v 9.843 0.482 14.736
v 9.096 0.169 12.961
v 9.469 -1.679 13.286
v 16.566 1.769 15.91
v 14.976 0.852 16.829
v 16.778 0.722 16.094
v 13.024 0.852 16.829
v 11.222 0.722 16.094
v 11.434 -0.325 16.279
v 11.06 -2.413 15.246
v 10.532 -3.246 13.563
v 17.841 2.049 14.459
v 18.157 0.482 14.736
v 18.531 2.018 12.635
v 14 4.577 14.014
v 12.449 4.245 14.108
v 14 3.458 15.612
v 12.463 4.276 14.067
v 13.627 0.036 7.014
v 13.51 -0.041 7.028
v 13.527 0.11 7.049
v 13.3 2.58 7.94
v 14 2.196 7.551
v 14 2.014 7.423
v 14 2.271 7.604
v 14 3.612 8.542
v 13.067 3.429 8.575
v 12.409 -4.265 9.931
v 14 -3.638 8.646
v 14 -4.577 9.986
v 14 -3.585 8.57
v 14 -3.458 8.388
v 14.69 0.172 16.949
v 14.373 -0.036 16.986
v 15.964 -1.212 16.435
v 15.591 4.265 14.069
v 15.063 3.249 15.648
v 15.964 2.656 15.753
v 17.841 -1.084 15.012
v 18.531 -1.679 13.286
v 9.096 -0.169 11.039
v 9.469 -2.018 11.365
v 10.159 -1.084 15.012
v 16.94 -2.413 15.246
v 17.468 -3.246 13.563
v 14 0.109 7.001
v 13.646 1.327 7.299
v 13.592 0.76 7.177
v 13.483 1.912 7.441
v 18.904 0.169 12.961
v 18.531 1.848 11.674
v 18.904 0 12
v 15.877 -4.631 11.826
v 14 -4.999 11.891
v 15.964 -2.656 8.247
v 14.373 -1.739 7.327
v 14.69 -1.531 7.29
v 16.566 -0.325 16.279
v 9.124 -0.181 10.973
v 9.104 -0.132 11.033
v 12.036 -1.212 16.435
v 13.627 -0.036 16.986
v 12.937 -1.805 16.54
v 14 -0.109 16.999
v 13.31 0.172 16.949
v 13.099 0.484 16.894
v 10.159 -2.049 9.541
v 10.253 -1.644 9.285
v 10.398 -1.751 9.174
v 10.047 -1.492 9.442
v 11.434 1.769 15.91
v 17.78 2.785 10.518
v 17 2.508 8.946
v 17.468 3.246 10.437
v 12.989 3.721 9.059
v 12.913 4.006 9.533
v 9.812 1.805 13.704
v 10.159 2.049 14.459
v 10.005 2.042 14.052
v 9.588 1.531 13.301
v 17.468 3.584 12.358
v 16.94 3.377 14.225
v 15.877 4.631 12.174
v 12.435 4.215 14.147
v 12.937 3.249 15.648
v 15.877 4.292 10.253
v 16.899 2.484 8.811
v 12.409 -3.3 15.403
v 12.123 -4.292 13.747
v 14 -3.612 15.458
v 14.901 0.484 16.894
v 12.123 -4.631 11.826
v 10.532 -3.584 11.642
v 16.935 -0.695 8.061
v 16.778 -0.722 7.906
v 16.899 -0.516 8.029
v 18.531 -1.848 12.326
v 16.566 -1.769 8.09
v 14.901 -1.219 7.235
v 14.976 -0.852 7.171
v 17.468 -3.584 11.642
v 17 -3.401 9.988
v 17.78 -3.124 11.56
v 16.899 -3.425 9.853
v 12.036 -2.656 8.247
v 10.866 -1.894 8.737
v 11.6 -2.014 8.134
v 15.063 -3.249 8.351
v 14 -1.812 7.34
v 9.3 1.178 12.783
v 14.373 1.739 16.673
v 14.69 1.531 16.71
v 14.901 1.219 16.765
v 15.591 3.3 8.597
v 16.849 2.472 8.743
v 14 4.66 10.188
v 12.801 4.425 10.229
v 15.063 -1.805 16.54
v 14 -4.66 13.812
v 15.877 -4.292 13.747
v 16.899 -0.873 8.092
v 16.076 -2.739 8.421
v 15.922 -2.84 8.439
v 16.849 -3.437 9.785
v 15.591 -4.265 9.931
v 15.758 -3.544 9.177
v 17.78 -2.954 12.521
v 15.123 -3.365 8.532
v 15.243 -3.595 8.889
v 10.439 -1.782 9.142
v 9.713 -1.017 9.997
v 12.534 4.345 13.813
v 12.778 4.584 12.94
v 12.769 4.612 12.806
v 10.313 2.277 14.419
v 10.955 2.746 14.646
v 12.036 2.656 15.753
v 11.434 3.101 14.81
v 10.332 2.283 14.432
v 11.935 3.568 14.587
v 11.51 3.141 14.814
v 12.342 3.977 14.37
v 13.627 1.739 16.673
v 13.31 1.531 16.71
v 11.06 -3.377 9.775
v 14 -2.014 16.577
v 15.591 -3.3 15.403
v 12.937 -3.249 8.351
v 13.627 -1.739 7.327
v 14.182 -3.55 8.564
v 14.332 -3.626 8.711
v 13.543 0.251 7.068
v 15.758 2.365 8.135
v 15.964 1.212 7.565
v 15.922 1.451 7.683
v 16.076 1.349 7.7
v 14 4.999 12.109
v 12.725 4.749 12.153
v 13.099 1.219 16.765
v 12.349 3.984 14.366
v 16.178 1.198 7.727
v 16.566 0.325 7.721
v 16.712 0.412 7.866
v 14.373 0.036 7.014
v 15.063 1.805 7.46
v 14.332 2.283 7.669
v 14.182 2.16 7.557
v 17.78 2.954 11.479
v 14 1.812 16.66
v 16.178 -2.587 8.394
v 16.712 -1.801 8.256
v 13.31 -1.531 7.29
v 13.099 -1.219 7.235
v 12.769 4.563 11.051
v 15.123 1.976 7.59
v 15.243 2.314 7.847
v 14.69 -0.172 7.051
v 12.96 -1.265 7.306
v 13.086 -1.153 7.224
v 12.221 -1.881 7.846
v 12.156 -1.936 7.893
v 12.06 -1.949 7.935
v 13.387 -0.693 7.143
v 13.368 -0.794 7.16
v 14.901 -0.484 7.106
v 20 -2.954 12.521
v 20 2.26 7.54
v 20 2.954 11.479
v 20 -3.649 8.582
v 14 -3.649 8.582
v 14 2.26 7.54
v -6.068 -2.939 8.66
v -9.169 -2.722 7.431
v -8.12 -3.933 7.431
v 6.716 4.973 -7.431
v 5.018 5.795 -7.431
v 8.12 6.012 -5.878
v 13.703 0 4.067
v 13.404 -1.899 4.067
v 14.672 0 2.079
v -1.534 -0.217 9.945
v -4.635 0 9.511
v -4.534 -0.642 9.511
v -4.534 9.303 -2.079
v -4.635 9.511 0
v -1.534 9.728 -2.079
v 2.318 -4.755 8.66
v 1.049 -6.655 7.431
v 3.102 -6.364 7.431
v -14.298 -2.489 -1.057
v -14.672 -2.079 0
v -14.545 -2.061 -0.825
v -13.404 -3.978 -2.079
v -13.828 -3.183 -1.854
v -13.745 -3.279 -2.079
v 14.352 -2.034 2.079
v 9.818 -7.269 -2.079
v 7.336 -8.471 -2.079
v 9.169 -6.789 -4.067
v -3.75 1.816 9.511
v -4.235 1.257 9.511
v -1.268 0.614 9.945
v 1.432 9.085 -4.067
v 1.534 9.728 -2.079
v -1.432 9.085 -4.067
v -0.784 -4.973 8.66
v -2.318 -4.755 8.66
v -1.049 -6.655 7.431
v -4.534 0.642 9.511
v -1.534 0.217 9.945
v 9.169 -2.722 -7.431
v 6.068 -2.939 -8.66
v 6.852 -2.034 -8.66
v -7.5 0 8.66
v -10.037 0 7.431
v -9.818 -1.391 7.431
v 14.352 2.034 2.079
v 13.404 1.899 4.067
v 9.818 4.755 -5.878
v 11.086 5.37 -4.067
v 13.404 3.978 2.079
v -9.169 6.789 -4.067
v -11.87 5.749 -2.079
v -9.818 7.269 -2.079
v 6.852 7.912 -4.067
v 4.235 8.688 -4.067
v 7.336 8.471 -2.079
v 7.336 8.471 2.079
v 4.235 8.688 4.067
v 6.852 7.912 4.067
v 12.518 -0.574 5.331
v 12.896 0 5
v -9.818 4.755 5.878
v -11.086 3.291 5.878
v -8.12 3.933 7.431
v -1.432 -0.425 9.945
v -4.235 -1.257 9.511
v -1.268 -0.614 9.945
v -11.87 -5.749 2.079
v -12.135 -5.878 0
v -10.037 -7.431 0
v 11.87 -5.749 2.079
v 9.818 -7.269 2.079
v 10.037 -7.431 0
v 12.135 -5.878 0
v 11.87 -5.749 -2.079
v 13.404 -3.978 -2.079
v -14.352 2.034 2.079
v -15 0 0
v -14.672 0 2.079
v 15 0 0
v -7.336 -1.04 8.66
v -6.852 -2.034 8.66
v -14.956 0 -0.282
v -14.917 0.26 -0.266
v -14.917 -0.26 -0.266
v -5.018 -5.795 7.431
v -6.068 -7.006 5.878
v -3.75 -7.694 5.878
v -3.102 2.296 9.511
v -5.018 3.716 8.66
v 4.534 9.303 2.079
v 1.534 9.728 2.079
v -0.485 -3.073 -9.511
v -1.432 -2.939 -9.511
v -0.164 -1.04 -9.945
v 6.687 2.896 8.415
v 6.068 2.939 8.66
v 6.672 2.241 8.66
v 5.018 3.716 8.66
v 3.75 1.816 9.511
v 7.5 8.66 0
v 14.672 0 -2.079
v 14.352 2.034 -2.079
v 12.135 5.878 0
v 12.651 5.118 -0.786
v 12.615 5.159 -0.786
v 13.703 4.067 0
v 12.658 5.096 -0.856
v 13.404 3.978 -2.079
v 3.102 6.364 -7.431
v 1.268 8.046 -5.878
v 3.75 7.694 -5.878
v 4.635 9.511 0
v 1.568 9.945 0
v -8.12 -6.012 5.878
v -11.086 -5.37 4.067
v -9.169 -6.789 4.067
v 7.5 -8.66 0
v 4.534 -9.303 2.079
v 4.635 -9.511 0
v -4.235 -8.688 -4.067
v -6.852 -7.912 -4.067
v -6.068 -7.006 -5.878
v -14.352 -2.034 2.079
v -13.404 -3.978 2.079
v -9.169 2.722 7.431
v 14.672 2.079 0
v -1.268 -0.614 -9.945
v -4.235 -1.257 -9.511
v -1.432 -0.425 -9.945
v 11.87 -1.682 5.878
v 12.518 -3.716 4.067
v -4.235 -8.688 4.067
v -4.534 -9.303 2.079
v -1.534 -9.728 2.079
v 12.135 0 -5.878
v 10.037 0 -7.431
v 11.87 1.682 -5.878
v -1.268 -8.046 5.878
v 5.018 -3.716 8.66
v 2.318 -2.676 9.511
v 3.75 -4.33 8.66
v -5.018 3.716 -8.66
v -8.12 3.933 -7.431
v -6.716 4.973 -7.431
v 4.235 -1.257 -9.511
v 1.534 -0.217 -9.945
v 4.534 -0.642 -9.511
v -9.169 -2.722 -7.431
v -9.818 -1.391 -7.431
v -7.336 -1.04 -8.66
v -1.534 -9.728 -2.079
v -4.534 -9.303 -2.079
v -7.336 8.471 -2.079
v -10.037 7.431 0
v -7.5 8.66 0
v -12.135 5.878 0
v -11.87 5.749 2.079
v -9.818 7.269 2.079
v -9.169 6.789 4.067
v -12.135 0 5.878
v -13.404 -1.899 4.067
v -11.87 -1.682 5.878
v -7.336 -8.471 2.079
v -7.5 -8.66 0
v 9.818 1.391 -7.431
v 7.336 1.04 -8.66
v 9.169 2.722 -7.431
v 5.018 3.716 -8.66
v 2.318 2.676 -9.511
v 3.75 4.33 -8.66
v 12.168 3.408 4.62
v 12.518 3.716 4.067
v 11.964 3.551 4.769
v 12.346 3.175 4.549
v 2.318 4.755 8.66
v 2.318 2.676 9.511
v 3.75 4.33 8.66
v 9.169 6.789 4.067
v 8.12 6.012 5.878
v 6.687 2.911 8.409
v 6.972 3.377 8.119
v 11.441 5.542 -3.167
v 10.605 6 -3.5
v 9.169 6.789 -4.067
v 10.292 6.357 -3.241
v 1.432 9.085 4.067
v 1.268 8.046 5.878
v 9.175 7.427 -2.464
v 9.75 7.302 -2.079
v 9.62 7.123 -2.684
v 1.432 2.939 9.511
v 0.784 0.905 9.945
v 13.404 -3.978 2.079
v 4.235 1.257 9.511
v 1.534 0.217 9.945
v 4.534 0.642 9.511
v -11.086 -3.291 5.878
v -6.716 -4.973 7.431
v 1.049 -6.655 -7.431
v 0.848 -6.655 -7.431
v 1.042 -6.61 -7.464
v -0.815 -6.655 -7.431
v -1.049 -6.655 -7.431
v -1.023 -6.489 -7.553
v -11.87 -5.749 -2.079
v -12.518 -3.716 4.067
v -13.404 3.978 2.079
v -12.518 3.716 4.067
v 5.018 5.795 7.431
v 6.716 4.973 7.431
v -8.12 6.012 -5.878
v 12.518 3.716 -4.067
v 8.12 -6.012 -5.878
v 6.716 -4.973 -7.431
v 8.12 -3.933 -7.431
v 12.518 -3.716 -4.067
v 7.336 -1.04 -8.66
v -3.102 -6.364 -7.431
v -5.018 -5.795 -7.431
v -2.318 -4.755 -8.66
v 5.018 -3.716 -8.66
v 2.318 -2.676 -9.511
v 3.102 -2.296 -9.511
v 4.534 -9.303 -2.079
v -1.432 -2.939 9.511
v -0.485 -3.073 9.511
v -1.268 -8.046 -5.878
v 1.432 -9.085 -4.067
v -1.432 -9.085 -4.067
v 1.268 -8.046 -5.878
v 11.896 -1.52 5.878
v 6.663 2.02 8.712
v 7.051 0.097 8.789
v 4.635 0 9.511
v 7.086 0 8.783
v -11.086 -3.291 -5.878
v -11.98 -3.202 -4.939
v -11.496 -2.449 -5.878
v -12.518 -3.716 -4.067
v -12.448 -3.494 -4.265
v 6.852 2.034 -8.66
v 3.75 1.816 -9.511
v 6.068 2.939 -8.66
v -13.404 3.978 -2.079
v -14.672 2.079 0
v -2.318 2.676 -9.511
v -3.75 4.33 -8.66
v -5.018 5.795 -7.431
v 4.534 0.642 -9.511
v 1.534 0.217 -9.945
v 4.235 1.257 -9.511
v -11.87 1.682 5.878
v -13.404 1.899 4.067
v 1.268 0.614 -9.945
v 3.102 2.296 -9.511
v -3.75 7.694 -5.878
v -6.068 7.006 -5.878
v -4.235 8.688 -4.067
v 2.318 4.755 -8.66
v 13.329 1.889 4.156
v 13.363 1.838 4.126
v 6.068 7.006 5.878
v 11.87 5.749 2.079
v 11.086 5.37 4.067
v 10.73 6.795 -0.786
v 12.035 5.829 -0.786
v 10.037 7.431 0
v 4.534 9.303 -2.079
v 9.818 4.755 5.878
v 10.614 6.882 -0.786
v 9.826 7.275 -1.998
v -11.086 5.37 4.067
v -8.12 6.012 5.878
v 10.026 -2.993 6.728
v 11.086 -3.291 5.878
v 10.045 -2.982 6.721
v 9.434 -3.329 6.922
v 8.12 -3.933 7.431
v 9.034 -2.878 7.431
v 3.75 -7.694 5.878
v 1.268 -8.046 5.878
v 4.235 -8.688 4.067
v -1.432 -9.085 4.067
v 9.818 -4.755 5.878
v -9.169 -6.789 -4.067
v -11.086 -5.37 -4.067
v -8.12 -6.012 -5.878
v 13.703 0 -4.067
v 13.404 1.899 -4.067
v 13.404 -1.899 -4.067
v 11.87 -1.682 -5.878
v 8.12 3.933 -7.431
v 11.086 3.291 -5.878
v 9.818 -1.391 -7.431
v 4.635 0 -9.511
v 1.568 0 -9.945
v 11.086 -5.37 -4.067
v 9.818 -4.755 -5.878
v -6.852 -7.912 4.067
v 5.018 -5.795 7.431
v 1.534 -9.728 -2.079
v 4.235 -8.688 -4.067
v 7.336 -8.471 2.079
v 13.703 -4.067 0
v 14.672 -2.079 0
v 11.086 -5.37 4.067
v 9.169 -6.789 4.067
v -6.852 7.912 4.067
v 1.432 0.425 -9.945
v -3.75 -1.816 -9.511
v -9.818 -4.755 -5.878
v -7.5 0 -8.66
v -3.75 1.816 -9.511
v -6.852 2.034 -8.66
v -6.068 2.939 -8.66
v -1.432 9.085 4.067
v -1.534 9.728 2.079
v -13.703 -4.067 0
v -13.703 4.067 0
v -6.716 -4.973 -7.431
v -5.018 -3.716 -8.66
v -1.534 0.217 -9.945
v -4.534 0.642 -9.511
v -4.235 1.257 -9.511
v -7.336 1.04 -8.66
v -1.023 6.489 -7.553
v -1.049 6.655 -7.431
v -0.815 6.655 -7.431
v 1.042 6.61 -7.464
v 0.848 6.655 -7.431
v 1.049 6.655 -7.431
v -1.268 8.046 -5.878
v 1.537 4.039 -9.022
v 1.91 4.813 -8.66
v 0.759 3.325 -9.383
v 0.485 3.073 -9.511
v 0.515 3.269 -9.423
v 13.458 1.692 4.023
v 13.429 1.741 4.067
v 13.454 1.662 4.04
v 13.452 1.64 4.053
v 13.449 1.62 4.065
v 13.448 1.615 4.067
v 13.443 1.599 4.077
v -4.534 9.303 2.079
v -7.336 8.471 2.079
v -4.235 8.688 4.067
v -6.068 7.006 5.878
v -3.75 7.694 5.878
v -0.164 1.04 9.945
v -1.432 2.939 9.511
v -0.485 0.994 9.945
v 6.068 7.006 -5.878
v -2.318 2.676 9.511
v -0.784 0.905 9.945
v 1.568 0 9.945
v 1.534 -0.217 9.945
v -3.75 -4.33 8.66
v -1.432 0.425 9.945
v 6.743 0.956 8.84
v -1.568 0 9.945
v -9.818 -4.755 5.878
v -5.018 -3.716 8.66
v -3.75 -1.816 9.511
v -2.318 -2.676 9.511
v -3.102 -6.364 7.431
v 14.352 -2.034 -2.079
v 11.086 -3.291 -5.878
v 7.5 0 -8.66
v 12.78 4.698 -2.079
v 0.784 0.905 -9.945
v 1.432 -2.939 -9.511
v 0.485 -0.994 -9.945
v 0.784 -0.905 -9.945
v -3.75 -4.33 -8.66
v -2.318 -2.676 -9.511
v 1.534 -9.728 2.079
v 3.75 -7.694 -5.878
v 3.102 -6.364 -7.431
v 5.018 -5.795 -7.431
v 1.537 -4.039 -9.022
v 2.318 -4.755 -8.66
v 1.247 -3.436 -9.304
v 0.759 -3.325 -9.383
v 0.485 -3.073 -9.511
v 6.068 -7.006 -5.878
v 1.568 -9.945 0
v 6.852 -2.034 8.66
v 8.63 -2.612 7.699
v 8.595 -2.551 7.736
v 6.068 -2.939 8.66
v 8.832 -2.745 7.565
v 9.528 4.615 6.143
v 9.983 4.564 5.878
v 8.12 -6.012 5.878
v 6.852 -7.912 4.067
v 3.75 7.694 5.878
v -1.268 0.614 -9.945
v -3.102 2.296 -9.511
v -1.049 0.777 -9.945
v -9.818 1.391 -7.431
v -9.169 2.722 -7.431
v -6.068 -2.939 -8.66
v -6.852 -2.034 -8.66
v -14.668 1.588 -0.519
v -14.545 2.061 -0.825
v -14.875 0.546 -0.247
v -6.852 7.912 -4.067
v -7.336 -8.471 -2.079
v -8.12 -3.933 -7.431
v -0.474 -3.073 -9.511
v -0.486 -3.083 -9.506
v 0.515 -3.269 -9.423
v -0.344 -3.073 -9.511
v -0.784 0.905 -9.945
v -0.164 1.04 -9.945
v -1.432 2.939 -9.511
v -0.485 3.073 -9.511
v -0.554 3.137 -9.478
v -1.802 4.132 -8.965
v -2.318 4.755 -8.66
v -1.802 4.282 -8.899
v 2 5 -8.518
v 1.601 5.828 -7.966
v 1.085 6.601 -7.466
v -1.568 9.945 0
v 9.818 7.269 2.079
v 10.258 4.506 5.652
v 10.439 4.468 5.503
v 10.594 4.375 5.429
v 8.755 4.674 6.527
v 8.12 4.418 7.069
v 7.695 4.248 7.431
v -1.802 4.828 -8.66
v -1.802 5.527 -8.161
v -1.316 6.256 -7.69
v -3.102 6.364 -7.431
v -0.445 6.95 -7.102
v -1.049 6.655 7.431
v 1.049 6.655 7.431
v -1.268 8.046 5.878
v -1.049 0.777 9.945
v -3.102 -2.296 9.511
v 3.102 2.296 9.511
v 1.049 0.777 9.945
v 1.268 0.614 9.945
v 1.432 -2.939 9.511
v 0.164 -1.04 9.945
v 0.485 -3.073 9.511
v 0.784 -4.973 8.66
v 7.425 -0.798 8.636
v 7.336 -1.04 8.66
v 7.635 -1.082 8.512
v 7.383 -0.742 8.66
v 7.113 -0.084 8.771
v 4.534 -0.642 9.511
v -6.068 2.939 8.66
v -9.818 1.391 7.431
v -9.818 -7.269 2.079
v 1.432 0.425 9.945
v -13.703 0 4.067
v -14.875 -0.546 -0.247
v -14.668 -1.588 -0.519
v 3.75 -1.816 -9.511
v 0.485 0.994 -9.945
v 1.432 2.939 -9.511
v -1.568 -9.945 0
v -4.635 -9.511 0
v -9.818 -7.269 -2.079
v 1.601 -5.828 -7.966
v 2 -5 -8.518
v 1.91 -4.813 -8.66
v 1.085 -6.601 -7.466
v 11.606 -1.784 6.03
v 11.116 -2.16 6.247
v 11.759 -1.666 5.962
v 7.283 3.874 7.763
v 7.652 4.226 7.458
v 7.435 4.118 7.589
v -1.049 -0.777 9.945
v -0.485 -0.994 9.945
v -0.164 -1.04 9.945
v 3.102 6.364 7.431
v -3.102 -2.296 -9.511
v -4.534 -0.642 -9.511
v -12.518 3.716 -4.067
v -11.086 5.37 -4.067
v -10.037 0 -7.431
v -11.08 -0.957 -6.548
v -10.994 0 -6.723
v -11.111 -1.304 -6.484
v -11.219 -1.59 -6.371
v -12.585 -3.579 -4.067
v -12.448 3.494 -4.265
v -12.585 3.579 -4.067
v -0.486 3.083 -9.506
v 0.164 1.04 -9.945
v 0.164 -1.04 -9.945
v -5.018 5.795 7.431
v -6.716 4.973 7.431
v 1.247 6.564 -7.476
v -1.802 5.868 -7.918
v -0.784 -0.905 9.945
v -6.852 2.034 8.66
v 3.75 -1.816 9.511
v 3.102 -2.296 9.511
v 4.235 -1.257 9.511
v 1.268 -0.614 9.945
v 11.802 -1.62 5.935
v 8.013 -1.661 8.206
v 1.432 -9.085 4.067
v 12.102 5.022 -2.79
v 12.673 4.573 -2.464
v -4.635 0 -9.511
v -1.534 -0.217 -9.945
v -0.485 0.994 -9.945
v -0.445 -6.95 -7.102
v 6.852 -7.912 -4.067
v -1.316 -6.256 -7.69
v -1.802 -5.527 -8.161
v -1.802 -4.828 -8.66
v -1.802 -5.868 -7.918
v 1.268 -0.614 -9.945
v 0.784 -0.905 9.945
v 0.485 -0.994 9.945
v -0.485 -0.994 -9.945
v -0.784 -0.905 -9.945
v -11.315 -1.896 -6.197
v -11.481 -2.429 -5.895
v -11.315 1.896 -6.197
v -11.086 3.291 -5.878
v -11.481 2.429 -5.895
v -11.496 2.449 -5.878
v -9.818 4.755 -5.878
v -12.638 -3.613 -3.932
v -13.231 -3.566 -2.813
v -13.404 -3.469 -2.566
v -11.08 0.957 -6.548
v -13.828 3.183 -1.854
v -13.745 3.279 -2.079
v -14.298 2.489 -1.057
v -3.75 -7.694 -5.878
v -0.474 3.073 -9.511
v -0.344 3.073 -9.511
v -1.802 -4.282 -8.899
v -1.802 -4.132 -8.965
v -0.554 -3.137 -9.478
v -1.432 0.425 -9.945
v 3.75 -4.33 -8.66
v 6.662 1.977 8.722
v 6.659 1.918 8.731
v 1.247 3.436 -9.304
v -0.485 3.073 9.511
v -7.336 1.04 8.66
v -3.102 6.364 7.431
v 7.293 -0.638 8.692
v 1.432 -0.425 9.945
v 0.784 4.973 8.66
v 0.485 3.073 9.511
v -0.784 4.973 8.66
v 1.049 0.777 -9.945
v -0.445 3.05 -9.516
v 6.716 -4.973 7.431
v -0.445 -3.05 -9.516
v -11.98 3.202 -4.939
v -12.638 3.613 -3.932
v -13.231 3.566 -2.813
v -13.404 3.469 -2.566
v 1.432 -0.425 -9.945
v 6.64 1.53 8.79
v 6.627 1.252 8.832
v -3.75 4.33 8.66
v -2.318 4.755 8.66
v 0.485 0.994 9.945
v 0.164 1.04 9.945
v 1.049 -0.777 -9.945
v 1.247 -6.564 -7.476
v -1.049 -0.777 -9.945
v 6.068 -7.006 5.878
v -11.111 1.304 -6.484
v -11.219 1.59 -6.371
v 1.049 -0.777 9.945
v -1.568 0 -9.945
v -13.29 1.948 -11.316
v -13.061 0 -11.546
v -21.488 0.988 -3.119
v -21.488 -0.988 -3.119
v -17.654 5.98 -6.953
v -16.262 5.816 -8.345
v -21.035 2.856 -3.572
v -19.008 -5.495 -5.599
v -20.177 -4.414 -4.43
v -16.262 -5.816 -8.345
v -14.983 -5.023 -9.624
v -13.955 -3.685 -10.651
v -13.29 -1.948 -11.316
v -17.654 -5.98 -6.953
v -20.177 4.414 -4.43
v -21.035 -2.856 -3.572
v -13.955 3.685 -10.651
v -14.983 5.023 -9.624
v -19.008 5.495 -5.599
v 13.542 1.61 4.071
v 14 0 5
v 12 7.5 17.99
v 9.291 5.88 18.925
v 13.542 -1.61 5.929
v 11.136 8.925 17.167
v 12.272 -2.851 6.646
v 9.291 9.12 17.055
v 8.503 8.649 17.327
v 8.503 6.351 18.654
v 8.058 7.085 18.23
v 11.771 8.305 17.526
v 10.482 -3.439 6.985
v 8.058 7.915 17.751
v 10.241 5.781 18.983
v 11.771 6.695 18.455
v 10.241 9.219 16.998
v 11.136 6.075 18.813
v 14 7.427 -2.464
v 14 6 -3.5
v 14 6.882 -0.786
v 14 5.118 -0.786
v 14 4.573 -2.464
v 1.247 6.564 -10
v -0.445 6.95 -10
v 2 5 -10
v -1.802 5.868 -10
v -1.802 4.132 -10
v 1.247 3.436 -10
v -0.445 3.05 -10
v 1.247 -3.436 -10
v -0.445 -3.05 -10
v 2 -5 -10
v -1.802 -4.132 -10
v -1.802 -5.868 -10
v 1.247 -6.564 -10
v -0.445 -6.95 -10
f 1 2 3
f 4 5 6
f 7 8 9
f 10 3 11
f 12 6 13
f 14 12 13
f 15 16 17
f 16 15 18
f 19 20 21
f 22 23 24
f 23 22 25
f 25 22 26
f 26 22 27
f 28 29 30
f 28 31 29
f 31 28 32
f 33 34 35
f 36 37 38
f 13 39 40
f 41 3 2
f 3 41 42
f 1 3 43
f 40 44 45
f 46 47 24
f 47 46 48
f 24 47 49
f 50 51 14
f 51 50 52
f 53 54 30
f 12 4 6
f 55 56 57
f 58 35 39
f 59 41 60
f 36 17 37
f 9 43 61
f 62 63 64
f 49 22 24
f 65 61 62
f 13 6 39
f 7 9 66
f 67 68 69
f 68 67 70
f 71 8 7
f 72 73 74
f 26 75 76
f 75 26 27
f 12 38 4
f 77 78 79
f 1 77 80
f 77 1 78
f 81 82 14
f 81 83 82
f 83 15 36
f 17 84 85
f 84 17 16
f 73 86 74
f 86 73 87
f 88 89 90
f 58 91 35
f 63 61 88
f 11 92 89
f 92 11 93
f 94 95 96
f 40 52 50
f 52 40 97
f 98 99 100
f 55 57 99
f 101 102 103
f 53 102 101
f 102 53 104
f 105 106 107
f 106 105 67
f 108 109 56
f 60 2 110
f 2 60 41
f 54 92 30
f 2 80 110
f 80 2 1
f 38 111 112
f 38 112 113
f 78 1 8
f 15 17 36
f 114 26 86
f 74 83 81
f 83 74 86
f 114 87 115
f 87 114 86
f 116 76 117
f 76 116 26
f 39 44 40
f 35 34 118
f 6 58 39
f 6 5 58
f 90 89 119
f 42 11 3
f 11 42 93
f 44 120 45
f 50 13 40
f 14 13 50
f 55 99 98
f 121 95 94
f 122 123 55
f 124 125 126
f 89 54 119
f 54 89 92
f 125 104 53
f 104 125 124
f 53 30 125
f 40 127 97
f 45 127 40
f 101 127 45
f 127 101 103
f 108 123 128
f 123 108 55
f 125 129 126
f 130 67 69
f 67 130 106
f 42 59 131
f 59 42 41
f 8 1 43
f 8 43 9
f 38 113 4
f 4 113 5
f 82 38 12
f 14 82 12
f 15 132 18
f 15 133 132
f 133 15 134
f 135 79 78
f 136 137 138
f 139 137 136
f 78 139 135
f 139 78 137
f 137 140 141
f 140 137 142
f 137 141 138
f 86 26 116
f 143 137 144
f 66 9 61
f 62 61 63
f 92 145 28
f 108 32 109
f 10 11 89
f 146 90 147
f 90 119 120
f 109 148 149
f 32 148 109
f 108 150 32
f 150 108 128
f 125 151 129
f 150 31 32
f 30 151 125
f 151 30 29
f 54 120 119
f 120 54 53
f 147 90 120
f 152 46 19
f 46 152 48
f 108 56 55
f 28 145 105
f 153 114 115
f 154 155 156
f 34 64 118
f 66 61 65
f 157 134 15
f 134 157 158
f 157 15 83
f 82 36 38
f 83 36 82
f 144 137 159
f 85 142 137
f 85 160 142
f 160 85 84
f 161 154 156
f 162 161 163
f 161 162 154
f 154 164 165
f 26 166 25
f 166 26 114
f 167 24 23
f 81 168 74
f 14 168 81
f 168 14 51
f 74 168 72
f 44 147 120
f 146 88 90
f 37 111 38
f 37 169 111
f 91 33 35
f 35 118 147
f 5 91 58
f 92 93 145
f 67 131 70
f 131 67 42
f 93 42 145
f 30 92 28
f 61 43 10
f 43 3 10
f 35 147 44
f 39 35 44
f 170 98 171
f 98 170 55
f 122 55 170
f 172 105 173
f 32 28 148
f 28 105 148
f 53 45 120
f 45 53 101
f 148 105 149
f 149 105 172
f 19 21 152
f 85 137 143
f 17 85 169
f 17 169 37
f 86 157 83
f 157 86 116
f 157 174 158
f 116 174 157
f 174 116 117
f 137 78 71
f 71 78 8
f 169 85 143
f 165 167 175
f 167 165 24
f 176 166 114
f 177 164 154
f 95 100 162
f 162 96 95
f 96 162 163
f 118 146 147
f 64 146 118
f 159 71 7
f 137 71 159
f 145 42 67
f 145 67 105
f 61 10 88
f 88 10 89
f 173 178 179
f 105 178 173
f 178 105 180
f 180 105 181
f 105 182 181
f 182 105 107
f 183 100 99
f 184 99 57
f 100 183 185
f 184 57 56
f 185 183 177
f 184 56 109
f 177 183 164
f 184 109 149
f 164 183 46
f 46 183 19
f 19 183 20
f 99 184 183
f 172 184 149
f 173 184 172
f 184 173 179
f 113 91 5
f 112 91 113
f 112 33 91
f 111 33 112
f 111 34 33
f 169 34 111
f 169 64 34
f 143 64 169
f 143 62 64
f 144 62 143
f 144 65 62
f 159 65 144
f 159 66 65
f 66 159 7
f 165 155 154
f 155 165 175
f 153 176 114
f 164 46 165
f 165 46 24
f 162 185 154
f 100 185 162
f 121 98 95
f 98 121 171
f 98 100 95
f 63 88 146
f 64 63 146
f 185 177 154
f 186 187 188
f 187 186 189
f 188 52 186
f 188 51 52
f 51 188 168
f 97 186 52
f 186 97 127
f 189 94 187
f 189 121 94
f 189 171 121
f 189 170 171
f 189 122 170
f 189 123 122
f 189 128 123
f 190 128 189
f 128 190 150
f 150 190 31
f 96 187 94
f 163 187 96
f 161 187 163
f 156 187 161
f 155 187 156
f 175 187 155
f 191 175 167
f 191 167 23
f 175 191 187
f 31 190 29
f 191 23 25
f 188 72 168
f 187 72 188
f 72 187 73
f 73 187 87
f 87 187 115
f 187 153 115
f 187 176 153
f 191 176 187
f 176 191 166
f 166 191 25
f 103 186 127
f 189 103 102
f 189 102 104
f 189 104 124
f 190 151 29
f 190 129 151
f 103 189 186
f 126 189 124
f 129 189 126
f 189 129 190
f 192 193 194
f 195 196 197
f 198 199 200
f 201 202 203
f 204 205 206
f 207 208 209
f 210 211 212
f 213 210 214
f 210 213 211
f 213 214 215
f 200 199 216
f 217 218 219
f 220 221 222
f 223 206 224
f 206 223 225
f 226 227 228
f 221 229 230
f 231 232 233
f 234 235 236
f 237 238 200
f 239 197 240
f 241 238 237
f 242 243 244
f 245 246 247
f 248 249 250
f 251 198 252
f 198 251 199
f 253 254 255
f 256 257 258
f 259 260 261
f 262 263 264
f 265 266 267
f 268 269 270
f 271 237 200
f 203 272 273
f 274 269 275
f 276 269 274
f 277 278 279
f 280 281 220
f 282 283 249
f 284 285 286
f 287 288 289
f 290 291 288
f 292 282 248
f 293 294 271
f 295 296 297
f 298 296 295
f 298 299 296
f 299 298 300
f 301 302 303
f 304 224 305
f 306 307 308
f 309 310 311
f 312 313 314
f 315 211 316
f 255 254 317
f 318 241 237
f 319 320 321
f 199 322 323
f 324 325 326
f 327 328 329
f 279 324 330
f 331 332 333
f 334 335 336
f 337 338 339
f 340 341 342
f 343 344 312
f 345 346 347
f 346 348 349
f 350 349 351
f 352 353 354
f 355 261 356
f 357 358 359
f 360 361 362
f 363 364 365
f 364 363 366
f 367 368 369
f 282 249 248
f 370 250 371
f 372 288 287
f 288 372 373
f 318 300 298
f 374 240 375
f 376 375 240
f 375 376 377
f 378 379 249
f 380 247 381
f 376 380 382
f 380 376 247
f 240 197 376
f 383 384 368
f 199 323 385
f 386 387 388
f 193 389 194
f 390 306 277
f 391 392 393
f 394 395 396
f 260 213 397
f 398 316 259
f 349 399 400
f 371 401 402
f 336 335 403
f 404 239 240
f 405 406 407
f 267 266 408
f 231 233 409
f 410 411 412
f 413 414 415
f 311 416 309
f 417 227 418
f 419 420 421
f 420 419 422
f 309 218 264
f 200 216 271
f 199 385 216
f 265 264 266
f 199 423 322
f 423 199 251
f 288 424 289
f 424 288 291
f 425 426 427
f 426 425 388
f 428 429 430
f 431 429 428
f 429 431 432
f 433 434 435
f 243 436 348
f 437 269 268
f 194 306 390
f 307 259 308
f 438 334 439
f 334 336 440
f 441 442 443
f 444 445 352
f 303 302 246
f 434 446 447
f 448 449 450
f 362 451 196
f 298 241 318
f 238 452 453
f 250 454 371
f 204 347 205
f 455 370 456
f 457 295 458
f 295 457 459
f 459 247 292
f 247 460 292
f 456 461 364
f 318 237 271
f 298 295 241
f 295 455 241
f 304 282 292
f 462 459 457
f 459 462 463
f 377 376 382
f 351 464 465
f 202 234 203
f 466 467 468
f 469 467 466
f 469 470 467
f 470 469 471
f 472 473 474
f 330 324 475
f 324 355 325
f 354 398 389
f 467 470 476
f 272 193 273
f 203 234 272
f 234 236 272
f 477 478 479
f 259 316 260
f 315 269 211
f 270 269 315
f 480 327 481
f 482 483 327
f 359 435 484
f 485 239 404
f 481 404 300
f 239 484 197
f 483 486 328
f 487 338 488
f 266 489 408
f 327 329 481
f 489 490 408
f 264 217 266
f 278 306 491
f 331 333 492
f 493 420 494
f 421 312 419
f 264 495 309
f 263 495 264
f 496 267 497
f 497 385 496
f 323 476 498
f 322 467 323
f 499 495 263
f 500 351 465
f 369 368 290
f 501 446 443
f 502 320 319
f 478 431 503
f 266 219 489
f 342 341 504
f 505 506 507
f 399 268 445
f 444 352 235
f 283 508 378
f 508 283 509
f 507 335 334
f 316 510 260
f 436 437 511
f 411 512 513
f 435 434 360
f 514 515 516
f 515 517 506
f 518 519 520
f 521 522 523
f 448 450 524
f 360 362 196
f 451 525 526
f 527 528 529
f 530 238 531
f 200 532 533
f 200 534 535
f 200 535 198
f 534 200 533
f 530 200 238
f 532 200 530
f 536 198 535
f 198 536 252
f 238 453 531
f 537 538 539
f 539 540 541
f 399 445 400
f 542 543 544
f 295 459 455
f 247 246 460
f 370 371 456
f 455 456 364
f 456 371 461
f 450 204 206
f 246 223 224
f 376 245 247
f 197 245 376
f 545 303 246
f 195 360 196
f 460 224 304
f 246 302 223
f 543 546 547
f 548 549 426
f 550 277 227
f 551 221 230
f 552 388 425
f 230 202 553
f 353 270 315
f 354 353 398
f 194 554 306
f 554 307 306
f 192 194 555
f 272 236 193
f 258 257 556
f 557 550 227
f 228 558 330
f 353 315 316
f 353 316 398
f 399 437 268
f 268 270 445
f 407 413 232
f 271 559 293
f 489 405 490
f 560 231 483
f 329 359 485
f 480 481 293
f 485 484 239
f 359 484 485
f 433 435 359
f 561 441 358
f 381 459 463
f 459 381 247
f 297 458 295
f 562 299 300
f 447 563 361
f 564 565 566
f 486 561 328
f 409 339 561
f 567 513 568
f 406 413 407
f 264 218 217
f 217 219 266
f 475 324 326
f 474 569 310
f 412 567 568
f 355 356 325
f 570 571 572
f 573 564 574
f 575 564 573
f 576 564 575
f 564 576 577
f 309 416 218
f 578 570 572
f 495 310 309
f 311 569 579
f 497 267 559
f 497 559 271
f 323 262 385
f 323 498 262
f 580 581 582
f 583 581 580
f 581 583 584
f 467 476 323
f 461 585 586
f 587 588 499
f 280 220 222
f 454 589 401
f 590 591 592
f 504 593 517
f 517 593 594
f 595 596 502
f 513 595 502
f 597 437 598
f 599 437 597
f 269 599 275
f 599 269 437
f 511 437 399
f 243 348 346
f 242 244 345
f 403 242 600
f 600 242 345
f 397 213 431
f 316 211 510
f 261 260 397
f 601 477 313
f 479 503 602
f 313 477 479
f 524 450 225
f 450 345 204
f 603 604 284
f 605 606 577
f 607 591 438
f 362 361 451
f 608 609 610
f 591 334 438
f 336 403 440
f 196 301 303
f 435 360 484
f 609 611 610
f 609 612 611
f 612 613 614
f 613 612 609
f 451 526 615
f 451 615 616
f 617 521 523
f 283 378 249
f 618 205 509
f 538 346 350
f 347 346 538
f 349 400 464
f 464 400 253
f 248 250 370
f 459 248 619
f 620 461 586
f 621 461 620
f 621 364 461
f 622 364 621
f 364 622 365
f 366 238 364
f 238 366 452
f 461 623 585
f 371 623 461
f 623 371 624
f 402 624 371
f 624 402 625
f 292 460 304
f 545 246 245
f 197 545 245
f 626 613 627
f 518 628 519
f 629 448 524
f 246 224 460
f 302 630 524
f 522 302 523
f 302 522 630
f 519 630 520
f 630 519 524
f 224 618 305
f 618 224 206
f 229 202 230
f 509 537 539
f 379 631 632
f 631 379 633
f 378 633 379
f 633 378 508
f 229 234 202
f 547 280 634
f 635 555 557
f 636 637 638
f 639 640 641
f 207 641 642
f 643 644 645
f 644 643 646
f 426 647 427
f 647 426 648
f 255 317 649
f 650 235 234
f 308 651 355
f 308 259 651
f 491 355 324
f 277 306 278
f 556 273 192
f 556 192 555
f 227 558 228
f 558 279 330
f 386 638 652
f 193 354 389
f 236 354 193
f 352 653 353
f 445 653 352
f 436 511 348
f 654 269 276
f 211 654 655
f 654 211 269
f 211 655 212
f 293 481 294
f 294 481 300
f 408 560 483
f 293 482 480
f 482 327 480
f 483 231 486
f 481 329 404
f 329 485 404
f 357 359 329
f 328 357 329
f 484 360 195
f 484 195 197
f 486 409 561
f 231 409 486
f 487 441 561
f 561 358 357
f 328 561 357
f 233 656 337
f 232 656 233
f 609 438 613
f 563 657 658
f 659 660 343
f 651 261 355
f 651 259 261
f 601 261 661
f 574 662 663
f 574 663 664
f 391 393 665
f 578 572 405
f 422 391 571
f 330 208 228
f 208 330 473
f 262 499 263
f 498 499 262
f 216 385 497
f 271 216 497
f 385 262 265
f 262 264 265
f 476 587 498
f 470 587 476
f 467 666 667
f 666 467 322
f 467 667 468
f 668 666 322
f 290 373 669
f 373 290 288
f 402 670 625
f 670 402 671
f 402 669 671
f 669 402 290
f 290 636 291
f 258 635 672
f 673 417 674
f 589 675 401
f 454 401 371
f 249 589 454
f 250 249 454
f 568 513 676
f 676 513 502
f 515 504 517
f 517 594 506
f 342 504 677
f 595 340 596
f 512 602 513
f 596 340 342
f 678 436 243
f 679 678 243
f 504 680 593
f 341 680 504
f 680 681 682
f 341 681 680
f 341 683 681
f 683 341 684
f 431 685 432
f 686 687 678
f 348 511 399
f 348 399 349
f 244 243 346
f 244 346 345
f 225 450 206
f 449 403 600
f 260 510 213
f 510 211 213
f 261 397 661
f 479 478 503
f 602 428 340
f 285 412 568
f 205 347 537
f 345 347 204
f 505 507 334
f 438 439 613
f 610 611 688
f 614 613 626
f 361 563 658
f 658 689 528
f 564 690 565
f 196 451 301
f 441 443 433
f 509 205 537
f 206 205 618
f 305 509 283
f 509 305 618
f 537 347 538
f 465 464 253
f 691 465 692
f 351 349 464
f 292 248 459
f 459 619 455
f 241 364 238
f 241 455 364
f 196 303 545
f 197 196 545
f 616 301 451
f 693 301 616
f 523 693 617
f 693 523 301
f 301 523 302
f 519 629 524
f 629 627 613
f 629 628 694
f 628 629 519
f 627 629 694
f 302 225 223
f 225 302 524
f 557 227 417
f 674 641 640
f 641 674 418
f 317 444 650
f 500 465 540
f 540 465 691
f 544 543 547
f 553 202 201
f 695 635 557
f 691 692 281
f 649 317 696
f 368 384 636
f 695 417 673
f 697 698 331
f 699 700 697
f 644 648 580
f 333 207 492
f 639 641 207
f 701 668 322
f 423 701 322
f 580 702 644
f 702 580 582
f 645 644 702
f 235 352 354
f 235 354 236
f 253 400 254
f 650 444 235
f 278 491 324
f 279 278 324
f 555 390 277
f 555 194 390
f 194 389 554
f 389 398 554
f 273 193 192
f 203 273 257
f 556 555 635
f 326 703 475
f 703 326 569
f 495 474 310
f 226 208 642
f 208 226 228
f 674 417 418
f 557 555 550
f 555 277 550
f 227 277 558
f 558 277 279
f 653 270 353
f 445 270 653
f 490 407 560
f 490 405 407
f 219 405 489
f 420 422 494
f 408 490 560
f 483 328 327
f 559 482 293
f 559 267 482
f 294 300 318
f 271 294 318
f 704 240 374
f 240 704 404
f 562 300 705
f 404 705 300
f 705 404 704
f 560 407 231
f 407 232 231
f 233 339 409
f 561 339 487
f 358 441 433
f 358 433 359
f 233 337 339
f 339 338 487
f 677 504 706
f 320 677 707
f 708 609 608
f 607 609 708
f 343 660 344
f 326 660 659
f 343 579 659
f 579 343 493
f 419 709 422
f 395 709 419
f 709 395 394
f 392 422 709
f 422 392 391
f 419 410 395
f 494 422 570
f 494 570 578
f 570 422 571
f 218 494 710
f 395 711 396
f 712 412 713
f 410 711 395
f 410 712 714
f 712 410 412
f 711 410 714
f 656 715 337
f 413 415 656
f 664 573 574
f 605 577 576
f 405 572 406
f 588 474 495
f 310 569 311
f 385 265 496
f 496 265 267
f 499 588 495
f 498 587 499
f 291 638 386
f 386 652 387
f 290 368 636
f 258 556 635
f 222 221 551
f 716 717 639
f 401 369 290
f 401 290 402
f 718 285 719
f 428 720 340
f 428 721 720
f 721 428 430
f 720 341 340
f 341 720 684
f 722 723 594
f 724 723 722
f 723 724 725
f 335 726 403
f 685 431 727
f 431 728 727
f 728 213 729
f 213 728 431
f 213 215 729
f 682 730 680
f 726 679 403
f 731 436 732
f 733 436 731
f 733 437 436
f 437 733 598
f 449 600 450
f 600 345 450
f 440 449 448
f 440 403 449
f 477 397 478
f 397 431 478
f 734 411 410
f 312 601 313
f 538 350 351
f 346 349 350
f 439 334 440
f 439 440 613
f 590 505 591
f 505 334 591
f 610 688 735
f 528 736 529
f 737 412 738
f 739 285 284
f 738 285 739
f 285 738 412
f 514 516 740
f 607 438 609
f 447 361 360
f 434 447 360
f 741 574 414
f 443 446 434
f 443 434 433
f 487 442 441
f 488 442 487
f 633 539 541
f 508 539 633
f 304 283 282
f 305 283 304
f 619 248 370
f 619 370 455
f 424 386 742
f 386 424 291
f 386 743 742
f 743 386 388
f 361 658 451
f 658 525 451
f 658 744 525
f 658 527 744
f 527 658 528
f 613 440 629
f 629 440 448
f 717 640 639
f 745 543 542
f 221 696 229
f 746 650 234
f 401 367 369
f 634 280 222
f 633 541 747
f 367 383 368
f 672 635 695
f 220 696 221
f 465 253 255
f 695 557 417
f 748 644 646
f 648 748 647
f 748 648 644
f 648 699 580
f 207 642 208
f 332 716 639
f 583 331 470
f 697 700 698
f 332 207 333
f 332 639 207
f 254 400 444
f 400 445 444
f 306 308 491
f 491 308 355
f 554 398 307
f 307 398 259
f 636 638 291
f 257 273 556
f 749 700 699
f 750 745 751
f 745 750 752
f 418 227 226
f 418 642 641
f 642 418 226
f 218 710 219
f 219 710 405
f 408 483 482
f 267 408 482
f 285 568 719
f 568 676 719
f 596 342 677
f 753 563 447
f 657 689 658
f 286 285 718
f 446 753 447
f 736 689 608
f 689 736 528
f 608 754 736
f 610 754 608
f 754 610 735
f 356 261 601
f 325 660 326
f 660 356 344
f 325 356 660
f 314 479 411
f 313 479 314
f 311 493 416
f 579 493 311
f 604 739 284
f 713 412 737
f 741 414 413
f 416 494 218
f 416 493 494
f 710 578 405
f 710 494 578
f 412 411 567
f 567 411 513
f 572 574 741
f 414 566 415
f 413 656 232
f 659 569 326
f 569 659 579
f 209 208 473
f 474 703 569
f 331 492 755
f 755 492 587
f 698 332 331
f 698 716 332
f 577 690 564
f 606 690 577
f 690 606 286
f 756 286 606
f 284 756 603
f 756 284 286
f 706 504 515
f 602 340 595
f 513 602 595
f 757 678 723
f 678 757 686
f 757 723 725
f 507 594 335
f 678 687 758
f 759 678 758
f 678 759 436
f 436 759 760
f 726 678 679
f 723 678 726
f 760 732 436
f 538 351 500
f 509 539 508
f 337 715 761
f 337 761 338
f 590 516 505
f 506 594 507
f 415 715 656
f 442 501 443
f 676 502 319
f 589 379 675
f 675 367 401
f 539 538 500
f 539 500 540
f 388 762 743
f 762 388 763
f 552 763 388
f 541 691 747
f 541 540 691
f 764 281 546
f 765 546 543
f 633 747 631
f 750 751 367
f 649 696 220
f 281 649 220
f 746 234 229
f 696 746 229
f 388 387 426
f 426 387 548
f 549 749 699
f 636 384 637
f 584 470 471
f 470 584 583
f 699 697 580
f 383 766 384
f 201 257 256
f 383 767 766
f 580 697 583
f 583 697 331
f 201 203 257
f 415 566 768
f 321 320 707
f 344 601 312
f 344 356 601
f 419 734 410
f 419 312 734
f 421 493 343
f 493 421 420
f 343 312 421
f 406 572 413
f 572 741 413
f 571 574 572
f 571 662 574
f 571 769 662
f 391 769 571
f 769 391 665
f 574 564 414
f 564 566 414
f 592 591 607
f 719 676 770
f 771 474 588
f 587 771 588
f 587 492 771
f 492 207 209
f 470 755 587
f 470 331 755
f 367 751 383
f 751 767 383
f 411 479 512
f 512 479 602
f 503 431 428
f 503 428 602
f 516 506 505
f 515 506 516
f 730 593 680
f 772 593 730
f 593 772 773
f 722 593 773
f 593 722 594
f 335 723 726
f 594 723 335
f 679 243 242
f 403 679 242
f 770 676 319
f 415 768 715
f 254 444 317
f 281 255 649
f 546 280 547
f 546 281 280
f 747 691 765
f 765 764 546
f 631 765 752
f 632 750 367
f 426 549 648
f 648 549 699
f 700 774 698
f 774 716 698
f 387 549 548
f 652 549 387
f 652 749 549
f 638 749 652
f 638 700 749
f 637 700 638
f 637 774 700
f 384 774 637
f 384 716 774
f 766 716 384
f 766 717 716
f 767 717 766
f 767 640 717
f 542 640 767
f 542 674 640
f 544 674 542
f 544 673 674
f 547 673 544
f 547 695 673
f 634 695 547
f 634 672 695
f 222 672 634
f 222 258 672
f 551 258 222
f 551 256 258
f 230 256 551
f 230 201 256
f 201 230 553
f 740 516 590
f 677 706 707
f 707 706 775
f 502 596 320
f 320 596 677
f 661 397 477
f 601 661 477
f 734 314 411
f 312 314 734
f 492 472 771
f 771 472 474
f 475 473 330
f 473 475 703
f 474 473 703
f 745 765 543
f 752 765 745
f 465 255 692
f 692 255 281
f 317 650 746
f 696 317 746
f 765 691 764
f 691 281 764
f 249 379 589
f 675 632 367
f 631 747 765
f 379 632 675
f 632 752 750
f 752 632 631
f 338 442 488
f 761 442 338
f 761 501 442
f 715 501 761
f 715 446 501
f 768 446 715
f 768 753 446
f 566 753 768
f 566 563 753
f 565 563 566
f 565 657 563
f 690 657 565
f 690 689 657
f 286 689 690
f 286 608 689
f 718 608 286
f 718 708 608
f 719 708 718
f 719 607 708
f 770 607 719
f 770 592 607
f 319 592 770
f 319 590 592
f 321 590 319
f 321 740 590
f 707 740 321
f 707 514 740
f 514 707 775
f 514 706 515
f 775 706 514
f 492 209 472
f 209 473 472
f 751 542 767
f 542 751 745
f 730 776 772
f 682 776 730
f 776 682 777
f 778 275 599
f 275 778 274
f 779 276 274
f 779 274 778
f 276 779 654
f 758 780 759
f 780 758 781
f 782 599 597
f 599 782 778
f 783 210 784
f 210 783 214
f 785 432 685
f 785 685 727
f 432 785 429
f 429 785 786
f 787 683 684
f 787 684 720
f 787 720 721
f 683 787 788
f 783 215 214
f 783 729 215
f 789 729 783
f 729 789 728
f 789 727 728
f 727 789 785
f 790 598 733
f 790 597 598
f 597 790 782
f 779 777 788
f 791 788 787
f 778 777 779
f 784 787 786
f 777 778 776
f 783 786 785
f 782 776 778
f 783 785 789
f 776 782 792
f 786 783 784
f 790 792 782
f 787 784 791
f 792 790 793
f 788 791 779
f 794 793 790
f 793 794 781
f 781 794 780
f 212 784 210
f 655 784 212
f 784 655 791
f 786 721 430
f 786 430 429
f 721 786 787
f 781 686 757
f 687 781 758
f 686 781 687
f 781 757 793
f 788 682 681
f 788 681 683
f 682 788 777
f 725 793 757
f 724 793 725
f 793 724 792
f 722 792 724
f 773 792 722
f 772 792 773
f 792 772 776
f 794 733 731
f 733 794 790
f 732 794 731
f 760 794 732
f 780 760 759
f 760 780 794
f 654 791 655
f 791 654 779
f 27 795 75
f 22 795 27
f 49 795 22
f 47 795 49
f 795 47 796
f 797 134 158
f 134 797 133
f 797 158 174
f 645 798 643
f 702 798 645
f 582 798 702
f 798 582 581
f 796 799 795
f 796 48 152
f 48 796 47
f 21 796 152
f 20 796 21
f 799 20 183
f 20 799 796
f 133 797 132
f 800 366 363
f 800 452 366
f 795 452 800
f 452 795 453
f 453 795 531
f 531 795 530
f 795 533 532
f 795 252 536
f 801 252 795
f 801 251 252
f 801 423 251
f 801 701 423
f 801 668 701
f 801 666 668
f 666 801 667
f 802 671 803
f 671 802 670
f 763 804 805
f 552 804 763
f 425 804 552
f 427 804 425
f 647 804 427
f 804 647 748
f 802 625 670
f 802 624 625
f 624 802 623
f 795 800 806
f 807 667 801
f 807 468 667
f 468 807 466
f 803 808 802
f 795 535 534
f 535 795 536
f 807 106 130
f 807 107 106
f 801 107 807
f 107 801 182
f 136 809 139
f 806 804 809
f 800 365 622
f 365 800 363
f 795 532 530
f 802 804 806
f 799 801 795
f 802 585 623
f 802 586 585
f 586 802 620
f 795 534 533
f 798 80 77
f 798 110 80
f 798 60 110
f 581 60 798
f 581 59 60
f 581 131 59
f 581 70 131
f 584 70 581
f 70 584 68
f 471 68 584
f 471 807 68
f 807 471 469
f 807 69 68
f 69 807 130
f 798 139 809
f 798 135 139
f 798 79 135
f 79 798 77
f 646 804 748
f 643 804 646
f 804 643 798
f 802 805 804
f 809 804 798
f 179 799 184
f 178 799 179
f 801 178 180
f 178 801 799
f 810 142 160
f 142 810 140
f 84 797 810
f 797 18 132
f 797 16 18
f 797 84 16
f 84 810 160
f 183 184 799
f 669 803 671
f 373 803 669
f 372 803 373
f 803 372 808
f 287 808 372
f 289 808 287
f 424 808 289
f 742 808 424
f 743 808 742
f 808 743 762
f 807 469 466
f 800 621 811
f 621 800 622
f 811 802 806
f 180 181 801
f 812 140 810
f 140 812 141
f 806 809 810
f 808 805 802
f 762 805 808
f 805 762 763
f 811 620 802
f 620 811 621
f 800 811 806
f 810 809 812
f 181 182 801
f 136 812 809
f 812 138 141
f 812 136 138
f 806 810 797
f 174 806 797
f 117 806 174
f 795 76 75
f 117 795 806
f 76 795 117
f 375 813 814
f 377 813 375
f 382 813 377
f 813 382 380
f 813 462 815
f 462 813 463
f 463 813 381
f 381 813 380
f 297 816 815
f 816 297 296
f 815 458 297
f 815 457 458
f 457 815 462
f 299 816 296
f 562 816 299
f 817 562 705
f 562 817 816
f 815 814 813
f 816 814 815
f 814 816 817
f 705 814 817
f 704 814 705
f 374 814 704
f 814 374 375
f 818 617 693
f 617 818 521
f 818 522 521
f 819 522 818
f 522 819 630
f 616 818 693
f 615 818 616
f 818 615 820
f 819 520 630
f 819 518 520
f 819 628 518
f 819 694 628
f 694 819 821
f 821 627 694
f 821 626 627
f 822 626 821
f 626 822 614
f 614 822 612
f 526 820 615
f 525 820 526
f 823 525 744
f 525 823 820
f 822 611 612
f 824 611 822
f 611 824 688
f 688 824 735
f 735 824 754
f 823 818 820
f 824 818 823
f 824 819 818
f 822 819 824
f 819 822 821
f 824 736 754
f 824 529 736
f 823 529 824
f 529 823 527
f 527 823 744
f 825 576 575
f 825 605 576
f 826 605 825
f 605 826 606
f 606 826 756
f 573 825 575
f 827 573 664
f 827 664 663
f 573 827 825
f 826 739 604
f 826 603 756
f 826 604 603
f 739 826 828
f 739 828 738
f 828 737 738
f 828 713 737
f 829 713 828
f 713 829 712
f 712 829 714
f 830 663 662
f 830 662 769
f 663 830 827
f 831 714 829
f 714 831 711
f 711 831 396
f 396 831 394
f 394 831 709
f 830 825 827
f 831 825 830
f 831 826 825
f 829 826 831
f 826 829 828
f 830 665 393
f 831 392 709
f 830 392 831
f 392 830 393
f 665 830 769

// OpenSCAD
// Dinosaur (T-Rex) low-poly model

module dinosaur() {
    // Body
    scale([1.5, 1, 1])
    sphere(r=10);

    // Tail
    translate([-12, 0, -2])
    rotate([0, 45, 0])
    cylinder(h=15, r1=6, r2=0, center=true);

    // Neck
    translate([10, 0, 5])
    rotate([-30, 0, 0])
    cylinder(h=15, r1=4, r2=2);

    // Head
    translate([14, 0, 12])
    rotate([-10, 0, 0])
    union() {
        sphere(r=5); // Main head
        // Jaw/Snout
        translate([3, 0, -2])
        cube([6, 6, 4], center=true);
    }

    // Arms (tiny)
    translate([8, 6, -2])
    rotate([0, 90, 0])
    cylinder(h=6, r=1.5);
    
    translate([8, -6, -2])
    rotate([0, -90, 0])
    cylinder(h=6, r=1.5);

    // Legs
    translate([0, 5, -10])
    cylinder(h=10, r=2);
    
    translate([0, -5, -10])
    cylinder(h=10, r=2);
}

dinosaur();
